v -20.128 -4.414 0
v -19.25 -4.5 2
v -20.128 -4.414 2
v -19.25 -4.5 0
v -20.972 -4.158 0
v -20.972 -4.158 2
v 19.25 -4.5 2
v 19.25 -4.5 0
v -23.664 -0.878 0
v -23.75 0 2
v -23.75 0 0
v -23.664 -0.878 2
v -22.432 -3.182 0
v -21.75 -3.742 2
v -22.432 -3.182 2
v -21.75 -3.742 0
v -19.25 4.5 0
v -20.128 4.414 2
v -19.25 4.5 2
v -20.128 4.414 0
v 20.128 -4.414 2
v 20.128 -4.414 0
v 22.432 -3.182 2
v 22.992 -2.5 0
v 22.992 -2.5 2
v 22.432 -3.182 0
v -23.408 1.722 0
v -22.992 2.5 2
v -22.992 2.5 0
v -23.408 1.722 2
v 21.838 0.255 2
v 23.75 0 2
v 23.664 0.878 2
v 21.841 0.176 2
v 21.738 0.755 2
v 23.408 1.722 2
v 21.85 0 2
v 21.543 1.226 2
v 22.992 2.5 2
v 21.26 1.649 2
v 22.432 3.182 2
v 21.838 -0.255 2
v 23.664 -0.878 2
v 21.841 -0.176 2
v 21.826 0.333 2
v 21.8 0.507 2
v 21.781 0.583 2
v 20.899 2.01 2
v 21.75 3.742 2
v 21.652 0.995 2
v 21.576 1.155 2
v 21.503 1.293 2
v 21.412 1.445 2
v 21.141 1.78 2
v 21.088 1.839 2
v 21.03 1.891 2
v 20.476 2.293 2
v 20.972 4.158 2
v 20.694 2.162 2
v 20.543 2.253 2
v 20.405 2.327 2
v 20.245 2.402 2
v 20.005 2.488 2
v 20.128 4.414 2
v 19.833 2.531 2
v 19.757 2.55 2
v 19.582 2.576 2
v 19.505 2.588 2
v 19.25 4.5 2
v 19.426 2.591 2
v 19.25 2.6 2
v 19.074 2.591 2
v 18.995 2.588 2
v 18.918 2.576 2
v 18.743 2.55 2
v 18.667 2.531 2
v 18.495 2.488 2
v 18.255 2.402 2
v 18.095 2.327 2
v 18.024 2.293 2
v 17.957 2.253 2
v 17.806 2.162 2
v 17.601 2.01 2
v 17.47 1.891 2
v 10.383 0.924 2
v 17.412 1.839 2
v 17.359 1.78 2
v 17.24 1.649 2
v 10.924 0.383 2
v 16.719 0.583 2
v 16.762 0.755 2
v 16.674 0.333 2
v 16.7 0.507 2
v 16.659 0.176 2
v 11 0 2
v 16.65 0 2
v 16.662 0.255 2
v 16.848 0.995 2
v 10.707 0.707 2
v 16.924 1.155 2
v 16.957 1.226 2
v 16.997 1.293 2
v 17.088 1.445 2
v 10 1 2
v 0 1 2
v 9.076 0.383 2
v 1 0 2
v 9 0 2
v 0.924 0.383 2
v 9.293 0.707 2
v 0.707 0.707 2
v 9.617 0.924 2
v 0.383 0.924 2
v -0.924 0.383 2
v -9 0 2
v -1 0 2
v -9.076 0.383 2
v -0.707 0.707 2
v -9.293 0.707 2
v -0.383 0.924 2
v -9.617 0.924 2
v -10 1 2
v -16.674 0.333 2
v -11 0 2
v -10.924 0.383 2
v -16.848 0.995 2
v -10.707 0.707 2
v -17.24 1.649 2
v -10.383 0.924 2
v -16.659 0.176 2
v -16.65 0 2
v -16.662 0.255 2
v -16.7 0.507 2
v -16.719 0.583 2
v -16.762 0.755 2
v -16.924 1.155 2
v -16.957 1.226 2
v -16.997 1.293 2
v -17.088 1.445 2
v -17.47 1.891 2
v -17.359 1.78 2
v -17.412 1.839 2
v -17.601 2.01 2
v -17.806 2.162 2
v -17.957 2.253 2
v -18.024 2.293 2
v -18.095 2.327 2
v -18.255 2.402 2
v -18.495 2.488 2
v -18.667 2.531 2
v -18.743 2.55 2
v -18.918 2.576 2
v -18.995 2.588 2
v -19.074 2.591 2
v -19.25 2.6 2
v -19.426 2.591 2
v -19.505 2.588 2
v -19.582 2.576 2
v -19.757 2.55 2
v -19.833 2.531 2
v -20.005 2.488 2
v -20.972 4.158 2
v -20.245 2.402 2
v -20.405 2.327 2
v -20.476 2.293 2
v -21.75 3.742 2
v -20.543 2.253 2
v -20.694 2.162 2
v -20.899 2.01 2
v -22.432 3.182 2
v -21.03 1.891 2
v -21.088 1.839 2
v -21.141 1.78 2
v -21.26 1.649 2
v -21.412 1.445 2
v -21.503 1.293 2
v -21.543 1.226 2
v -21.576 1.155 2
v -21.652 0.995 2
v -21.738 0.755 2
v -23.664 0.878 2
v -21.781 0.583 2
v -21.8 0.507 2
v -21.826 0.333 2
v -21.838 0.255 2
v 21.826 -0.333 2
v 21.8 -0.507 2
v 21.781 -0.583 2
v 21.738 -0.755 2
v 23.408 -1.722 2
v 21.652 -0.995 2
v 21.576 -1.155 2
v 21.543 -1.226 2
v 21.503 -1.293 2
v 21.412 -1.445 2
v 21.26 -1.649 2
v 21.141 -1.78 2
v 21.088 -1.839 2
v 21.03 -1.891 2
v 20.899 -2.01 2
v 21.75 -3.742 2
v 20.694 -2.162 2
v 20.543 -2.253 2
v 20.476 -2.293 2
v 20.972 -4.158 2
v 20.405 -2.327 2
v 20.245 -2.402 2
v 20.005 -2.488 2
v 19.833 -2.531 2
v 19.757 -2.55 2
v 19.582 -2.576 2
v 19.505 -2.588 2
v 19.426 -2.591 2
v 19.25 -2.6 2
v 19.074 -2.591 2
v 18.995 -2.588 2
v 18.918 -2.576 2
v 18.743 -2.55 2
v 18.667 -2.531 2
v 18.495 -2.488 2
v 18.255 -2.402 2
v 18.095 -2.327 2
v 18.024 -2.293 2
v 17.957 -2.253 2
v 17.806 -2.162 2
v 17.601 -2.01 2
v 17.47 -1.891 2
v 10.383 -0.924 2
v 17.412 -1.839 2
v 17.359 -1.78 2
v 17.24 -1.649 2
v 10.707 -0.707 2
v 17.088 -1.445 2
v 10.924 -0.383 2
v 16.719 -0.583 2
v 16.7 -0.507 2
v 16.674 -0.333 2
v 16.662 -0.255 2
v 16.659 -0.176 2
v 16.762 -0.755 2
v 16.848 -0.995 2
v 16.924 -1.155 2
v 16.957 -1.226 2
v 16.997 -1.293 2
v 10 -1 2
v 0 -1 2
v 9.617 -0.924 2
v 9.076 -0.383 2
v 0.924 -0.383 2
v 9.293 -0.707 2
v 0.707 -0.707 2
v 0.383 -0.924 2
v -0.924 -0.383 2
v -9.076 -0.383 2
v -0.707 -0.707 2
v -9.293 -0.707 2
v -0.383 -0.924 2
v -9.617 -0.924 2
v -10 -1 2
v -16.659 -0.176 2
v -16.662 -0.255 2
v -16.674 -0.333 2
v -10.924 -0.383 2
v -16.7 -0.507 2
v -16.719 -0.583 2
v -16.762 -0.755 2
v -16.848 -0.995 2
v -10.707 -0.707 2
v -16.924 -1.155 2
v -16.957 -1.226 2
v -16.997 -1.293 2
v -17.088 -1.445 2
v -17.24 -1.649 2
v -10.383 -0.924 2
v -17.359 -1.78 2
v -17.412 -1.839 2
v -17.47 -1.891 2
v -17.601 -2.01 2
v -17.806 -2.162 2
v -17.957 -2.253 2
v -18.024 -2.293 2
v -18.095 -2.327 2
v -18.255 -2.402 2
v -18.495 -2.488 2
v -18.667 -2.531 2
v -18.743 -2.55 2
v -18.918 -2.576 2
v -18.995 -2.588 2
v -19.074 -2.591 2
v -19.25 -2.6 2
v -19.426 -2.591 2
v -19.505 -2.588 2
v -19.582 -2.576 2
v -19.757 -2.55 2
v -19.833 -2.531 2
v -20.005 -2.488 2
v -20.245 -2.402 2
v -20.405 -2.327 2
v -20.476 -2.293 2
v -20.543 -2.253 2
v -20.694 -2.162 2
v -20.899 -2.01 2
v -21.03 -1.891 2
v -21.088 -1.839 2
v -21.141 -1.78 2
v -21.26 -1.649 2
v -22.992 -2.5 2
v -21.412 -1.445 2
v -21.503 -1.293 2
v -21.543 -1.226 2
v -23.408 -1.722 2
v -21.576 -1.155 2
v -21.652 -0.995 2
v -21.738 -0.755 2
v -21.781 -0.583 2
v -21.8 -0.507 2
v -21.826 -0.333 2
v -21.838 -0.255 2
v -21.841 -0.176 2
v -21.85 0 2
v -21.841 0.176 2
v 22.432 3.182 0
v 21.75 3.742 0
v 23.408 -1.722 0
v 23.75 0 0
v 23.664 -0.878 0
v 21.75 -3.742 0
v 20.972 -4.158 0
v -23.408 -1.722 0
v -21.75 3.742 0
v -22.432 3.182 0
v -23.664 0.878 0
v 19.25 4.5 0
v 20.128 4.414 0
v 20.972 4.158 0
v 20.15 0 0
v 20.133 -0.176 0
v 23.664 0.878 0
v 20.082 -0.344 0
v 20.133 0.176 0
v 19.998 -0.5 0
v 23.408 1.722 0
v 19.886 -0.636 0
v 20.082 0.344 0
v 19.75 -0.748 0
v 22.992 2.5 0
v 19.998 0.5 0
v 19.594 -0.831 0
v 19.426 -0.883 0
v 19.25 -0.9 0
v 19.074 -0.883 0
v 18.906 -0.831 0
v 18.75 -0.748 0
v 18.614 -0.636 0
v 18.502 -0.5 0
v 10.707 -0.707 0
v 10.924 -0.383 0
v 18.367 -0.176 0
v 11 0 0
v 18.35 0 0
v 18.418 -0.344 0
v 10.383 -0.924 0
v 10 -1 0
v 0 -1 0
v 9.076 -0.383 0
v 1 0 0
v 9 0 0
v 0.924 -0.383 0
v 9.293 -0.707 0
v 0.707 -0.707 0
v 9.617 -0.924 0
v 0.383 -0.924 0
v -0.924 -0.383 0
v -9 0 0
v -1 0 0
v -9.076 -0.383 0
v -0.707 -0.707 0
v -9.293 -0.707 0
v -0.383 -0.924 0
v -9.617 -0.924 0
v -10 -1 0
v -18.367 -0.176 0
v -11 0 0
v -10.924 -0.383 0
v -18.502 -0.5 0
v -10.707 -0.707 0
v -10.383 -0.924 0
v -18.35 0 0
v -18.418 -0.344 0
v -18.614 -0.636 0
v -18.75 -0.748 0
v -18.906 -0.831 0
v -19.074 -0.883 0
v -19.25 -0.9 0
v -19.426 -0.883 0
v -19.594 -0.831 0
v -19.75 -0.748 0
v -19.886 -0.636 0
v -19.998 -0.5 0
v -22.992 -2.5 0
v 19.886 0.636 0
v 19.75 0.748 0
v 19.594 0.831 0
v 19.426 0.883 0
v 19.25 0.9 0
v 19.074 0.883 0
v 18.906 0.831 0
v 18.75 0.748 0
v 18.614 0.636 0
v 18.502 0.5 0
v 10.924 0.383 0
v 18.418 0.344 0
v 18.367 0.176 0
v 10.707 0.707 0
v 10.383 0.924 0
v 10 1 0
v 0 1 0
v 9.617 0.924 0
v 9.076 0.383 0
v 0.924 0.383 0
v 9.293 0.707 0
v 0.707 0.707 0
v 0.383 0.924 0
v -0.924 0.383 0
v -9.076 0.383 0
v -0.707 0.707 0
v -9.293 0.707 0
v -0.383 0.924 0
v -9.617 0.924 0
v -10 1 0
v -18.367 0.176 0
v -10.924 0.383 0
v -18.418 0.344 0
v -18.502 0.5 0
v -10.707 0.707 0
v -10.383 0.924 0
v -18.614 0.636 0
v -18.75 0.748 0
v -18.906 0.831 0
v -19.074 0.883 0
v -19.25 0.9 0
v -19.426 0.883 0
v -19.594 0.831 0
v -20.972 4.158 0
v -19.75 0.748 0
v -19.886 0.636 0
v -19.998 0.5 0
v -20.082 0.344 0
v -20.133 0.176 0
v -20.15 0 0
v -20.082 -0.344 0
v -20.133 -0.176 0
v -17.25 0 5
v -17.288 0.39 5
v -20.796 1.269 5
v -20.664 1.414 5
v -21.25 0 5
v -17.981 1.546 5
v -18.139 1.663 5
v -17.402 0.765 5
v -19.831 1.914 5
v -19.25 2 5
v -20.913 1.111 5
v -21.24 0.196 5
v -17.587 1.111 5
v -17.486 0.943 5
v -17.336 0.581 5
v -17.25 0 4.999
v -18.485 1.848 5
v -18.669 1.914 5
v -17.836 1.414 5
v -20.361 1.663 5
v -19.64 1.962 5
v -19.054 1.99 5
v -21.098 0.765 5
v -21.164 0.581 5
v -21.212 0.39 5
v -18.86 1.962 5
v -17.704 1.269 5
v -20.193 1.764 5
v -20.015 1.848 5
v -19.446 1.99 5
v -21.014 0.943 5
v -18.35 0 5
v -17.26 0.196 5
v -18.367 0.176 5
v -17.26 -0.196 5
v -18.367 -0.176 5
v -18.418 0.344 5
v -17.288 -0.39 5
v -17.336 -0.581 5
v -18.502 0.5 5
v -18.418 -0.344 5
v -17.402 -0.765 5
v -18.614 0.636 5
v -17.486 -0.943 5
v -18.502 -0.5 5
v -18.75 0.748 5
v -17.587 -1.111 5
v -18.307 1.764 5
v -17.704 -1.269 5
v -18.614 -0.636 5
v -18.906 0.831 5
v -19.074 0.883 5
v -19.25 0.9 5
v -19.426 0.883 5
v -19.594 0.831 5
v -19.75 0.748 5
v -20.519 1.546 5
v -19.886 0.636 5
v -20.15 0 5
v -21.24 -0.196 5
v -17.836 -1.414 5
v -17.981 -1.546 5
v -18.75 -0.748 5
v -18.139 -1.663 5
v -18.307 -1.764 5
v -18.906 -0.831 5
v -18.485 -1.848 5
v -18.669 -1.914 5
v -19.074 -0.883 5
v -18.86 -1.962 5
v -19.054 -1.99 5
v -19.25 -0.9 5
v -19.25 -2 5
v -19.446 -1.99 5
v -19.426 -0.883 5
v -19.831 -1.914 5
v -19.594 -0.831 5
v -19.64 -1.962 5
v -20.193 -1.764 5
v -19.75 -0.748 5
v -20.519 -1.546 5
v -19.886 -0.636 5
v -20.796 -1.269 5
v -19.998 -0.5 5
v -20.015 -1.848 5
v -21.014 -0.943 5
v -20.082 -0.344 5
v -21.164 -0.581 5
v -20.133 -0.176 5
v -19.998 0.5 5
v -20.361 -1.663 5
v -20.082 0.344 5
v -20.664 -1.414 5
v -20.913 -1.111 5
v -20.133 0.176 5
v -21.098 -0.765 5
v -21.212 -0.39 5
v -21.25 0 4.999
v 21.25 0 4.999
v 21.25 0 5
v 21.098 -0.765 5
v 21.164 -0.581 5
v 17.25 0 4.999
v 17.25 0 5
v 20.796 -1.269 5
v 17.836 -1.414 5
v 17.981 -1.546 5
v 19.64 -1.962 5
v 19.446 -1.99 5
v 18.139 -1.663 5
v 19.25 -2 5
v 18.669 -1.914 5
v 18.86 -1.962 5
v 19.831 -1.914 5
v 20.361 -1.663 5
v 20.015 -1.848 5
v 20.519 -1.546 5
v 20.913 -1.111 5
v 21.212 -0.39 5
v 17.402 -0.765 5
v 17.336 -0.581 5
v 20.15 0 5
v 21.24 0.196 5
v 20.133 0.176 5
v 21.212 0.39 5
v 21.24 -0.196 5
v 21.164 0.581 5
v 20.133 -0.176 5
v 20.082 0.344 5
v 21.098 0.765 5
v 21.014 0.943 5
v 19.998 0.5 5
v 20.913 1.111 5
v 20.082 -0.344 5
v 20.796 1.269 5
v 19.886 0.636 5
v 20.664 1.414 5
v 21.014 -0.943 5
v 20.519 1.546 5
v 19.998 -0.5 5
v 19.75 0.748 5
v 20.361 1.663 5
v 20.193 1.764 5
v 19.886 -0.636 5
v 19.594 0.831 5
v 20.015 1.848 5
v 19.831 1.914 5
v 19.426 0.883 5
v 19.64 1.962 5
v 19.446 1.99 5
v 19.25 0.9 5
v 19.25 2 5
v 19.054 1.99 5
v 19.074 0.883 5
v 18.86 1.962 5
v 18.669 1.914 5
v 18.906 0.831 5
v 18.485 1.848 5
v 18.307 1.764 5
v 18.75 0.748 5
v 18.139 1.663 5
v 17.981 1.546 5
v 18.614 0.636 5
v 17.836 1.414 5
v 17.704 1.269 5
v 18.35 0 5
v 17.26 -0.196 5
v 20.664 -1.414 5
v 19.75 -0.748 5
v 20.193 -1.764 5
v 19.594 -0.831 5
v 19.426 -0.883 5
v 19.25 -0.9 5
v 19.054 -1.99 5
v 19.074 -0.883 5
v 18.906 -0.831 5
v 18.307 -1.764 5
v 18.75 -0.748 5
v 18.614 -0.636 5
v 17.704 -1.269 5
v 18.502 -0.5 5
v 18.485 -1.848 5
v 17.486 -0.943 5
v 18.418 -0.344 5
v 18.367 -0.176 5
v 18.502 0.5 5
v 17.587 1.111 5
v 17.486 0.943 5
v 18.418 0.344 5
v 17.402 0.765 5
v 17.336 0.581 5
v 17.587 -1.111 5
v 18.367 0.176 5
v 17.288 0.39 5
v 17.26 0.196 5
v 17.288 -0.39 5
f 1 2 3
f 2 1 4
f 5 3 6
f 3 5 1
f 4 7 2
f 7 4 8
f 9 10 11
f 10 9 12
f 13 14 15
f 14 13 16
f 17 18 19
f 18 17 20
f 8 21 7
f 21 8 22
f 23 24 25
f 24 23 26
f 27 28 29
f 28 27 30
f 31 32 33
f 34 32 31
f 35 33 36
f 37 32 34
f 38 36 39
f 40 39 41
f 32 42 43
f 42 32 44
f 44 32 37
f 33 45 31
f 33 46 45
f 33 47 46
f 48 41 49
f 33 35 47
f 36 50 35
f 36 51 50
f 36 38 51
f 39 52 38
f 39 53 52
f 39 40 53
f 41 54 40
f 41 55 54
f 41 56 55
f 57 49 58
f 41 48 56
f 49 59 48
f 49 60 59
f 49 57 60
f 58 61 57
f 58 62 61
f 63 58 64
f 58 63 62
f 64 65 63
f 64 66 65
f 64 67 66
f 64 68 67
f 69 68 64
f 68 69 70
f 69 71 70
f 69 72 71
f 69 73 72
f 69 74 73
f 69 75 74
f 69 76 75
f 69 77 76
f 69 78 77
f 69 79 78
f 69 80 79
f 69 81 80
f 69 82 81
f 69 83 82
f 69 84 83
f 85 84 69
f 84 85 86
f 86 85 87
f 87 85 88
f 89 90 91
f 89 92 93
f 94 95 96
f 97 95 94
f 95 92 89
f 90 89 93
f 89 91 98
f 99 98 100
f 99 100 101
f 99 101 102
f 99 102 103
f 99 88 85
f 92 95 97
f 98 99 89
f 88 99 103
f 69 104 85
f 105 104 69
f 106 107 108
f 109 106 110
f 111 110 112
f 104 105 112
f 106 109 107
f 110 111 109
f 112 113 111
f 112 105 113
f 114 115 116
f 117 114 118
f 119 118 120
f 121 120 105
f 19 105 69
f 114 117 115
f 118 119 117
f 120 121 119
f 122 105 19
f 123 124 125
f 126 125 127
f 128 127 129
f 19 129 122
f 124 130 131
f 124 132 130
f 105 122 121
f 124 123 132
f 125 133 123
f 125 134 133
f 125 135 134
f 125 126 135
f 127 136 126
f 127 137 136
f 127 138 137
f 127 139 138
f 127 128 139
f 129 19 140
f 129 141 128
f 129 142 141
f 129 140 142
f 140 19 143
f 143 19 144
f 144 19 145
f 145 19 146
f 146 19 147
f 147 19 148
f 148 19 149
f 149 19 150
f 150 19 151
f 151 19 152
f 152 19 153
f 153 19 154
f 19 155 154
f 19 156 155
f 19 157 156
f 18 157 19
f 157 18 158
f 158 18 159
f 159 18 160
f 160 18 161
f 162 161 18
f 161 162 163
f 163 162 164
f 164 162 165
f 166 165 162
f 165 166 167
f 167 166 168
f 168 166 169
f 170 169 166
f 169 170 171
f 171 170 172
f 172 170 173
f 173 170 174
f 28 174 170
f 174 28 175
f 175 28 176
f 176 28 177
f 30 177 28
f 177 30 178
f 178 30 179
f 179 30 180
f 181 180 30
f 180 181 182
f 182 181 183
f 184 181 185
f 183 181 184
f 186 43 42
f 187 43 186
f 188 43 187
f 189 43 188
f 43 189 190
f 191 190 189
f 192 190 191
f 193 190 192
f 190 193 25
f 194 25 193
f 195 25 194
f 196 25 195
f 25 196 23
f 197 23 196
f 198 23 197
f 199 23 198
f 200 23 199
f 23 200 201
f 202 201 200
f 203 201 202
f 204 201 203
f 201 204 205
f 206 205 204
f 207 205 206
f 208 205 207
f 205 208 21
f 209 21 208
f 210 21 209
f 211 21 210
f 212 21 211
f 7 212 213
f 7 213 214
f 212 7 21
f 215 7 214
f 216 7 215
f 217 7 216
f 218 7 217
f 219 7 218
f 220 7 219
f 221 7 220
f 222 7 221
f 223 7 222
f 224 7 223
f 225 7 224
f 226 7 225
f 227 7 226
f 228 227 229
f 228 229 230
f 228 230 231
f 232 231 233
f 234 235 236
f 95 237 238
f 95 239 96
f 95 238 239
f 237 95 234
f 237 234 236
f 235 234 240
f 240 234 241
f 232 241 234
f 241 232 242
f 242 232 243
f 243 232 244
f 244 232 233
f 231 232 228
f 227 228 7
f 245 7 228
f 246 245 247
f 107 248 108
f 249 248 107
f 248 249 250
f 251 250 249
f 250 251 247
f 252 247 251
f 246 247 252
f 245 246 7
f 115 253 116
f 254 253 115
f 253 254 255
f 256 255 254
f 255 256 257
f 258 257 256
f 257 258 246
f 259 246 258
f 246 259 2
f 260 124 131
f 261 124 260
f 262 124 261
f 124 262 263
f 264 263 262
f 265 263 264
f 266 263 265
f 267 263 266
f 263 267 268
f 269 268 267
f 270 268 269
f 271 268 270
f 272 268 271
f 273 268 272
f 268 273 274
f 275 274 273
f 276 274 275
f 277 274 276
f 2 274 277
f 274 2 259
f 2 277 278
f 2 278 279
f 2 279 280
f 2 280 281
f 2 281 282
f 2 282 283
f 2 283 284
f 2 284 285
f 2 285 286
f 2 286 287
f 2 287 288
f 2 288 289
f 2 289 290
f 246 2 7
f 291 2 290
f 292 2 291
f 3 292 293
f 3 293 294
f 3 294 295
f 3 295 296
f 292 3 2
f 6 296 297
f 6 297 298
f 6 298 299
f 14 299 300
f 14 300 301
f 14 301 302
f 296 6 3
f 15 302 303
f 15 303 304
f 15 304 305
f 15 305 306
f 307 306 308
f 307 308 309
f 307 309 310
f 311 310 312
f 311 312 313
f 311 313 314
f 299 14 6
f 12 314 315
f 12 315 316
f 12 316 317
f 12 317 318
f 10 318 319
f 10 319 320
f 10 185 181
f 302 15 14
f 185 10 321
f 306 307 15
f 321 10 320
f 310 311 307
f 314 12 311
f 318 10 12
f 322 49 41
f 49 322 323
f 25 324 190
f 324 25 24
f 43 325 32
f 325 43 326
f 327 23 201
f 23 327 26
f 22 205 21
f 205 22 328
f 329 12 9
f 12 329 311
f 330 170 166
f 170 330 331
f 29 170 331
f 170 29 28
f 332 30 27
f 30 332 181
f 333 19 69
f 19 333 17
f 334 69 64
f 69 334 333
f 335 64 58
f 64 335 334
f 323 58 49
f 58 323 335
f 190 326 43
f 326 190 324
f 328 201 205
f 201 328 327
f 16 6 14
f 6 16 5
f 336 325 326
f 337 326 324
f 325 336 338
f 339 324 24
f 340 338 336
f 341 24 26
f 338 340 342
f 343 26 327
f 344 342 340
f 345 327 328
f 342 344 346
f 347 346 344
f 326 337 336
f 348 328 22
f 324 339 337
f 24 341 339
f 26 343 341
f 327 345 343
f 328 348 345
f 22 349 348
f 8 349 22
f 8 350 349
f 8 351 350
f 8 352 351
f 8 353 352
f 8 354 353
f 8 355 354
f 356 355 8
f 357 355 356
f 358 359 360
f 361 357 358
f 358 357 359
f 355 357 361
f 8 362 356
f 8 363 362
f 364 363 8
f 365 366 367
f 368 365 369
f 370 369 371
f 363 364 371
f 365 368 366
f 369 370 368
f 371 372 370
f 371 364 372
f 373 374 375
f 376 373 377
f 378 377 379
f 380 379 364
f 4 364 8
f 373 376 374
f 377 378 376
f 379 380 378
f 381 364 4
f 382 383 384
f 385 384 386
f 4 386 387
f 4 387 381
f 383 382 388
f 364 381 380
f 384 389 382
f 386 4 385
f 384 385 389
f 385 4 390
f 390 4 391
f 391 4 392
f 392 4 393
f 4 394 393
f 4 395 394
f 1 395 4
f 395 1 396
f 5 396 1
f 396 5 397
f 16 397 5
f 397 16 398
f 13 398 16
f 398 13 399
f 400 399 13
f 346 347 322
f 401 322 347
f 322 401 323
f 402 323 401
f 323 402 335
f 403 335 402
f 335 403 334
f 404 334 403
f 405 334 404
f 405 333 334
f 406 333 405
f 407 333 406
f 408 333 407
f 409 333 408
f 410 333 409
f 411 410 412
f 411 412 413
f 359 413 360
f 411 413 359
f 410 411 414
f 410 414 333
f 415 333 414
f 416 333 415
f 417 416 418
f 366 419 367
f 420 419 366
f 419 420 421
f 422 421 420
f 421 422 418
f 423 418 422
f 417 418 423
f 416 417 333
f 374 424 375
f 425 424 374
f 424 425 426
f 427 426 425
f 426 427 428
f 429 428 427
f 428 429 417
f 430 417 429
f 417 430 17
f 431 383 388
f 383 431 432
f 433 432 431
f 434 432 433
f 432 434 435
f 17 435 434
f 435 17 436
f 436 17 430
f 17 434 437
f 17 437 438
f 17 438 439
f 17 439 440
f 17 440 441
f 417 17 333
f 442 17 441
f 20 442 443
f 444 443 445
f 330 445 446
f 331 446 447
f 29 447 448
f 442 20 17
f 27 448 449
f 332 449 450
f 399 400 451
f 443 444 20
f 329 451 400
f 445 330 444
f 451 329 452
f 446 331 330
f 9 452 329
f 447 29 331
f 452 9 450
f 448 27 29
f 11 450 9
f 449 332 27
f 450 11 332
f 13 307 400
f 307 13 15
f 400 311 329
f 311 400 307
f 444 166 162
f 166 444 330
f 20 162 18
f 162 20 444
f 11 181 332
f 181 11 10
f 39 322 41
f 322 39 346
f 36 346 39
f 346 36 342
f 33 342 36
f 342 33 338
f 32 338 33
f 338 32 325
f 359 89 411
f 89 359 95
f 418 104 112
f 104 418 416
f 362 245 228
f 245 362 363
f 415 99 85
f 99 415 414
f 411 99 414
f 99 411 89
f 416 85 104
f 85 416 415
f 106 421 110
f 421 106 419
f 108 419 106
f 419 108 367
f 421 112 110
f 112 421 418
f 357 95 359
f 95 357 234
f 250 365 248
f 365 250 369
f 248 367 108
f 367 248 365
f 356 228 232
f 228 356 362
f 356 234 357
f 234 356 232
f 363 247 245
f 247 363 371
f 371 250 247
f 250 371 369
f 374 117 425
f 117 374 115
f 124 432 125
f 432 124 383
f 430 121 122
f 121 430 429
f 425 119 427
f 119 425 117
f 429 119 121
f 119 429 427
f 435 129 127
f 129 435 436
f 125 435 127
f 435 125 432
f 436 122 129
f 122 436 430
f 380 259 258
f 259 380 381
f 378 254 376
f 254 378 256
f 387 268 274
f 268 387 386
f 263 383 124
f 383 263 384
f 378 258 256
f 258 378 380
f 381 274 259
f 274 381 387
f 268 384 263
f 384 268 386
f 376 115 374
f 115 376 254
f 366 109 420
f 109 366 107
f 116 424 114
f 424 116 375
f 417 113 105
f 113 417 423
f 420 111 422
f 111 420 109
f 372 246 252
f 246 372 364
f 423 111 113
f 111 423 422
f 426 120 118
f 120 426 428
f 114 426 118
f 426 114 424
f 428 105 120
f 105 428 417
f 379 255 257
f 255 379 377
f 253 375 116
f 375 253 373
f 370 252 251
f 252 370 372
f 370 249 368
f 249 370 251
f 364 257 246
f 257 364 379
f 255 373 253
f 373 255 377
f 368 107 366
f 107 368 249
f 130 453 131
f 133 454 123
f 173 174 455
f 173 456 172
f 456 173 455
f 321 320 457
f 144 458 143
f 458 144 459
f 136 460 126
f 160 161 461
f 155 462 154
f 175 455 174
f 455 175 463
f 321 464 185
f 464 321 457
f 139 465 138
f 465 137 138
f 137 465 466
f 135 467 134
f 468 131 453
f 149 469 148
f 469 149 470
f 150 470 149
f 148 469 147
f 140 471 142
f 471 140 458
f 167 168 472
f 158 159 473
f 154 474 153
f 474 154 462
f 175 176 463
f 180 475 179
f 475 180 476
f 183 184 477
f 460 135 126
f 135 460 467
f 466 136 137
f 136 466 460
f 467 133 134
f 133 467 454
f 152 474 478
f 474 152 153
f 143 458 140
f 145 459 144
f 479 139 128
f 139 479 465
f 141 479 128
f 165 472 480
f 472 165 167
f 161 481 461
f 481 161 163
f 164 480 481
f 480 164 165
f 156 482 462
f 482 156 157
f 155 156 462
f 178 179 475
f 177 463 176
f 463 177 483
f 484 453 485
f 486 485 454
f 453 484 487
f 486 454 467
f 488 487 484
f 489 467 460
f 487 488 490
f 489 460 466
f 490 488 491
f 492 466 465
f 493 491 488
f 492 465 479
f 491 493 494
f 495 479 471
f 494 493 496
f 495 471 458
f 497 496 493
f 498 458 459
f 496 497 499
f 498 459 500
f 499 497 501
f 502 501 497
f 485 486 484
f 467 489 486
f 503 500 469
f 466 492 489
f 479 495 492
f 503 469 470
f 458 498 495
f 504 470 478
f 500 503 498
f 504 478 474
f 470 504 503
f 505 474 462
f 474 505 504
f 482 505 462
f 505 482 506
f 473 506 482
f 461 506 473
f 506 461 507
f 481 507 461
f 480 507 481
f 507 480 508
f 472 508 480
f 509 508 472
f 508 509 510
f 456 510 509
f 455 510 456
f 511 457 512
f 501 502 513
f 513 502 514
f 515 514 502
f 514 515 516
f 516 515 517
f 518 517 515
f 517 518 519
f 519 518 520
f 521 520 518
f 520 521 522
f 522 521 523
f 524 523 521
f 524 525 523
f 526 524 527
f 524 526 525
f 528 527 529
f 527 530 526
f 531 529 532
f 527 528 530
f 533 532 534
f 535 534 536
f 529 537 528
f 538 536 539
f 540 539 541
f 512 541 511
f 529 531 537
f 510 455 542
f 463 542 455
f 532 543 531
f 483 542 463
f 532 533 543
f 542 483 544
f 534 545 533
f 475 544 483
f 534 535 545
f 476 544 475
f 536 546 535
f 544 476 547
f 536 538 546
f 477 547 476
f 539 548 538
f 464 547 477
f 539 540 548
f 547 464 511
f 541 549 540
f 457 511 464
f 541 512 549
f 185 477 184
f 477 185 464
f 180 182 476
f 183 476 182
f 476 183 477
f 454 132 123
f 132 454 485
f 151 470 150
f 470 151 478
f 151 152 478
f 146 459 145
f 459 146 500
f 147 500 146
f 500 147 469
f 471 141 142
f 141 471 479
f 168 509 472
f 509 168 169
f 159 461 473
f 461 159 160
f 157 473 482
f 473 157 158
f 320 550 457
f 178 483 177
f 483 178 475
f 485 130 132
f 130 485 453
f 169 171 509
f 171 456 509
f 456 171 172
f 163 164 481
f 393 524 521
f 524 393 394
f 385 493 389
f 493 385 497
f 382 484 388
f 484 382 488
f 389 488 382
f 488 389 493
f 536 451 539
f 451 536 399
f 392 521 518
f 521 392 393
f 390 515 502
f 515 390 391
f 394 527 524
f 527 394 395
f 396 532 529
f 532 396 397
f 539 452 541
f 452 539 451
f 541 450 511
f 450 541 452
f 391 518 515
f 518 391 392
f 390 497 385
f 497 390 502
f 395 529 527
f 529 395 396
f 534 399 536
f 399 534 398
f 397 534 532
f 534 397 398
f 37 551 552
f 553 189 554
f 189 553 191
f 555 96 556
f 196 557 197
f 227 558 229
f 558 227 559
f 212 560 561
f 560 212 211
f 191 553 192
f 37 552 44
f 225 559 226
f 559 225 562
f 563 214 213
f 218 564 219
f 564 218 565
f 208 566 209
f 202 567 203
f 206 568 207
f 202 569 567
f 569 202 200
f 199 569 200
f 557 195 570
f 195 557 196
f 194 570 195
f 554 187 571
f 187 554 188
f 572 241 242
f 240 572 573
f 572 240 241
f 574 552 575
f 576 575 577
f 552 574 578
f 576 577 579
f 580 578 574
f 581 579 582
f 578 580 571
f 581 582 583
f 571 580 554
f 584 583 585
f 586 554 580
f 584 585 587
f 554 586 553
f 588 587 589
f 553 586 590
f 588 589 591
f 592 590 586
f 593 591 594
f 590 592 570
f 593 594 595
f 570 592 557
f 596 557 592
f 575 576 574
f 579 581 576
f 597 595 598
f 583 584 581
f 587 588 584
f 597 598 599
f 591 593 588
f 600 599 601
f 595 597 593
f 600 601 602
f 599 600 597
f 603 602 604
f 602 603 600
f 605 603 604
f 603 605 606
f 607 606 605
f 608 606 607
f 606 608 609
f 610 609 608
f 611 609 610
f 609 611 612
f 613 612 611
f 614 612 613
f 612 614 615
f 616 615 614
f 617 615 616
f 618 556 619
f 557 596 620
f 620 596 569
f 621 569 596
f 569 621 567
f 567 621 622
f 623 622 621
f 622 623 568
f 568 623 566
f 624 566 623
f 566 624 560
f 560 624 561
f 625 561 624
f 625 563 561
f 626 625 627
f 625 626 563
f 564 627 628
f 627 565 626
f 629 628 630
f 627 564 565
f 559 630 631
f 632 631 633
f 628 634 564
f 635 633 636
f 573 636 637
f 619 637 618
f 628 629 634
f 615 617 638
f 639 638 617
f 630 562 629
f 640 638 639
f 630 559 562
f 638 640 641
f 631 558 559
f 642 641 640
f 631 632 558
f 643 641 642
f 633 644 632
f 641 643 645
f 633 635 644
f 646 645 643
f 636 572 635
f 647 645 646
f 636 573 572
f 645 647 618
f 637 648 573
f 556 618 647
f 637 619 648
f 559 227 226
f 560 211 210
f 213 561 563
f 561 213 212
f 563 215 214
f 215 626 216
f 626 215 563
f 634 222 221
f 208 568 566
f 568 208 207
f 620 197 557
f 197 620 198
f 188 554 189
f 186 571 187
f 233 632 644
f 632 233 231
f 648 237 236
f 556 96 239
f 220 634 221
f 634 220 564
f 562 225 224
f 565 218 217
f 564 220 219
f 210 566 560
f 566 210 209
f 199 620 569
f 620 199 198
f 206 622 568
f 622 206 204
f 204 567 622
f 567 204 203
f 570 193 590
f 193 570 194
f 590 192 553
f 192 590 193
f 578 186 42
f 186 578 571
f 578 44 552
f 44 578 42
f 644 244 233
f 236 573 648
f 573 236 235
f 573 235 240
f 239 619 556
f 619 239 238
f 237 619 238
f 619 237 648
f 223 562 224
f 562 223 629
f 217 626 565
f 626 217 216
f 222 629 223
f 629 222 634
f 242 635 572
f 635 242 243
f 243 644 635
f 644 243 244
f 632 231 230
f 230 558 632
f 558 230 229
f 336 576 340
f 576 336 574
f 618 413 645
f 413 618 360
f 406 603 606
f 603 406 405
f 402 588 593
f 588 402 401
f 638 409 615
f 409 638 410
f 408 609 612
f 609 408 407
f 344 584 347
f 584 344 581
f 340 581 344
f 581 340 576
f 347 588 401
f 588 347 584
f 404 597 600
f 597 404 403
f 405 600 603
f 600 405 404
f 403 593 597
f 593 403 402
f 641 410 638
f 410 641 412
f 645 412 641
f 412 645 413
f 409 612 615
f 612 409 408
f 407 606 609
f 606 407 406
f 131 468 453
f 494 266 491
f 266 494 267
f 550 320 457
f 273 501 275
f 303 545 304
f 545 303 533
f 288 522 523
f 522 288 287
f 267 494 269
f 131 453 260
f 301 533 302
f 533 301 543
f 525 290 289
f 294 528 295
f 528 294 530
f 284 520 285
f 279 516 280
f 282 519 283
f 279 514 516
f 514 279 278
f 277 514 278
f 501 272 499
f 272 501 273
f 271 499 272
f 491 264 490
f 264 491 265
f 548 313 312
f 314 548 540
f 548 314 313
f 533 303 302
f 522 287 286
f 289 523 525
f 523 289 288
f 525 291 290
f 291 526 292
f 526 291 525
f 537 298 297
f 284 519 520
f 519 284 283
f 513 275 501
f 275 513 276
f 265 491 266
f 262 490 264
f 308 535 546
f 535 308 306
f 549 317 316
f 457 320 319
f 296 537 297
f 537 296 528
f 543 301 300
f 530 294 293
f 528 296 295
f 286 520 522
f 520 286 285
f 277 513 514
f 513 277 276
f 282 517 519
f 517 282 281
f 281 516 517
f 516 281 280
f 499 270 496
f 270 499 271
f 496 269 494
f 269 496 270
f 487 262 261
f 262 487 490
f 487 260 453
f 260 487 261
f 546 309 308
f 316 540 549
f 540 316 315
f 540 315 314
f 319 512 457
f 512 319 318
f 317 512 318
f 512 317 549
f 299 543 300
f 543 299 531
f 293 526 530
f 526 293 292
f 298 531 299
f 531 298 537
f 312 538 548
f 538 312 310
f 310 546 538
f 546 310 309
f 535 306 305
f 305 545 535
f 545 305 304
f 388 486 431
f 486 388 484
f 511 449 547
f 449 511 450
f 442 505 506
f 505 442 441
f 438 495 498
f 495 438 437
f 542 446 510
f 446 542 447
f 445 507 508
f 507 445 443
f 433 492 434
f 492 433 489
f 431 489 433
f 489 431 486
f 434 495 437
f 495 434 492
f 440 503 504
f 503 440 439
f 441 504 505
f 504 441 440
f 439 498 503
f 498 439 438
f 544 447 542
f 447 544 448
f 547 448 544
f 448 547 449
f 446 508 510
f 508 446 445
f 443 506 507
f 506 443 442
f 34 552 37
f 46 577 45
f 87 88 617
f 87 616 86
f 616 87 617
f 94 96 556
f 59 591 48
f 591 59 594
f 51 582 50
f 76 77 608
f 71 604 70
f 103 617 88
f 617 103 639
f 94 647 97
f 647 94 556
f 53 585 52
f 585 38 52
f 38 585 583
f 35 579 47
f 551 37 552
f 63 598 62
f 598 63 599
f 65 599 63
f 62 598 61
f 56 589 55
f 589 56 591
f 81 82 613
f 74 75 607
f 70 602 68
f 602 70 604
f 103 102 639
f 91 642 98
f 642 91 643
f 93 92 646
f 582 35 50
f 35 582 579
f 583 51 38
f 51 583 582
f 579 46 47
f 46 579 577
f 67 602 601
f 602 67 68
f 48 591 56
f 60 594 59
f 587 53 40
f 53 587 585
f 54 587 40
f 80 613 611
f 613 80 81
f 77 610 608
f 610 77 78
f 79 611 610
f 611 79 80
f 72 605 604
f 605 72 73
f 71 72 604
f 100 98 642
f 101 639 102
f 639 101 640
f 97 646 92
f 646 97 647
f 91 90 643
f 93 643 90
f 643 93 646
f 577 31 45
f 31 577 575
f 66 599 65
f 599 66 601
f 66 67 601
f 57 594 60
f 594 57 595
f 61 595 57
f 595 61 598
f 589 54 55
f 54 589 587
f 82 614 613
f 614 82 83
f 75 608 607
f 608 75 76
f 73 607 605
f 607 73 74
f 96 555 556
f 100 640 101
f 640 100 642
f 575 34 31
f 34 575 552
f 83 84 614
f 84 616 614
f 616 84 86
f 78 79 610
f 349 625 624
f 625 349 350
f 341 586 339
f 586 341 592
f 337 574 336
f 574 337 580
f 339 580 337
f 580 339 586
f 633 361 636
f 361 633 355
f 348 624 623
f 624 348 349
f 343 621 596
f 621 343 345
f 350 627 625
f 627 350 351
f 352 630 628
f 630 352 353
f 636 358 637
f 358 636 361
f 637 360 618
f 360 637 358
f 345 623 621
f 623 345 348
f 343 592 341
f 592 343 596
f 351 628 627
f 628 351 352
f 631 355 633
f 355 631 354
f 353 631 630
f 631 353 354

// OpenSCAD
L1=38.5;
W1=0.0001;

difference() {
minkowski() {
translate([-L1/2,-W1/2])
cube([L1,W1,2]);
cylinder(d=9,h=0.0001,$fn=32);

}

translate([10,0,0])
cylinder(d=2,h=4,$fn=16);

translate([-10,0,0])
cylinder(d=2,h=4,$fn=16);

translate([0,0,0])
cylinder(d=2,h=4,$fn=16);

translate([0,0,0])
cylinder(d=2,h=4,$fn=16);

translate([L1/2,W1/2,0])
standoffh();
translate([L1/2,-W1/2,0])
standoffh();
translate([-L1/2,W1/2,0])
standoffh();
translate([-L1/2,-W1/2,0])
standoffh();
}

translate([-L1/2,W1/2,0])
standoff();
translate([L1/2,-W1/2,0])
standoff();
translate([-L1/2,-W1/2,0])
standoff();
translate([L1/2,W1/2,0])
standoff();

module standoff() {
    difference() {
        cylinder(d1=6,d2=4,h=5,$fn=64);
        cylinder(d=1.8,h=6,$fn=32);
    }
}

module standoff2() {
        cylinder(d1=6,d2=4,h=5,$fn=64);
        cylinder(d=2.1,h=6.5,$fn=32);
}

module standoffh() {

        cylinder(d=1.8,h=6,$fn=32);
}
